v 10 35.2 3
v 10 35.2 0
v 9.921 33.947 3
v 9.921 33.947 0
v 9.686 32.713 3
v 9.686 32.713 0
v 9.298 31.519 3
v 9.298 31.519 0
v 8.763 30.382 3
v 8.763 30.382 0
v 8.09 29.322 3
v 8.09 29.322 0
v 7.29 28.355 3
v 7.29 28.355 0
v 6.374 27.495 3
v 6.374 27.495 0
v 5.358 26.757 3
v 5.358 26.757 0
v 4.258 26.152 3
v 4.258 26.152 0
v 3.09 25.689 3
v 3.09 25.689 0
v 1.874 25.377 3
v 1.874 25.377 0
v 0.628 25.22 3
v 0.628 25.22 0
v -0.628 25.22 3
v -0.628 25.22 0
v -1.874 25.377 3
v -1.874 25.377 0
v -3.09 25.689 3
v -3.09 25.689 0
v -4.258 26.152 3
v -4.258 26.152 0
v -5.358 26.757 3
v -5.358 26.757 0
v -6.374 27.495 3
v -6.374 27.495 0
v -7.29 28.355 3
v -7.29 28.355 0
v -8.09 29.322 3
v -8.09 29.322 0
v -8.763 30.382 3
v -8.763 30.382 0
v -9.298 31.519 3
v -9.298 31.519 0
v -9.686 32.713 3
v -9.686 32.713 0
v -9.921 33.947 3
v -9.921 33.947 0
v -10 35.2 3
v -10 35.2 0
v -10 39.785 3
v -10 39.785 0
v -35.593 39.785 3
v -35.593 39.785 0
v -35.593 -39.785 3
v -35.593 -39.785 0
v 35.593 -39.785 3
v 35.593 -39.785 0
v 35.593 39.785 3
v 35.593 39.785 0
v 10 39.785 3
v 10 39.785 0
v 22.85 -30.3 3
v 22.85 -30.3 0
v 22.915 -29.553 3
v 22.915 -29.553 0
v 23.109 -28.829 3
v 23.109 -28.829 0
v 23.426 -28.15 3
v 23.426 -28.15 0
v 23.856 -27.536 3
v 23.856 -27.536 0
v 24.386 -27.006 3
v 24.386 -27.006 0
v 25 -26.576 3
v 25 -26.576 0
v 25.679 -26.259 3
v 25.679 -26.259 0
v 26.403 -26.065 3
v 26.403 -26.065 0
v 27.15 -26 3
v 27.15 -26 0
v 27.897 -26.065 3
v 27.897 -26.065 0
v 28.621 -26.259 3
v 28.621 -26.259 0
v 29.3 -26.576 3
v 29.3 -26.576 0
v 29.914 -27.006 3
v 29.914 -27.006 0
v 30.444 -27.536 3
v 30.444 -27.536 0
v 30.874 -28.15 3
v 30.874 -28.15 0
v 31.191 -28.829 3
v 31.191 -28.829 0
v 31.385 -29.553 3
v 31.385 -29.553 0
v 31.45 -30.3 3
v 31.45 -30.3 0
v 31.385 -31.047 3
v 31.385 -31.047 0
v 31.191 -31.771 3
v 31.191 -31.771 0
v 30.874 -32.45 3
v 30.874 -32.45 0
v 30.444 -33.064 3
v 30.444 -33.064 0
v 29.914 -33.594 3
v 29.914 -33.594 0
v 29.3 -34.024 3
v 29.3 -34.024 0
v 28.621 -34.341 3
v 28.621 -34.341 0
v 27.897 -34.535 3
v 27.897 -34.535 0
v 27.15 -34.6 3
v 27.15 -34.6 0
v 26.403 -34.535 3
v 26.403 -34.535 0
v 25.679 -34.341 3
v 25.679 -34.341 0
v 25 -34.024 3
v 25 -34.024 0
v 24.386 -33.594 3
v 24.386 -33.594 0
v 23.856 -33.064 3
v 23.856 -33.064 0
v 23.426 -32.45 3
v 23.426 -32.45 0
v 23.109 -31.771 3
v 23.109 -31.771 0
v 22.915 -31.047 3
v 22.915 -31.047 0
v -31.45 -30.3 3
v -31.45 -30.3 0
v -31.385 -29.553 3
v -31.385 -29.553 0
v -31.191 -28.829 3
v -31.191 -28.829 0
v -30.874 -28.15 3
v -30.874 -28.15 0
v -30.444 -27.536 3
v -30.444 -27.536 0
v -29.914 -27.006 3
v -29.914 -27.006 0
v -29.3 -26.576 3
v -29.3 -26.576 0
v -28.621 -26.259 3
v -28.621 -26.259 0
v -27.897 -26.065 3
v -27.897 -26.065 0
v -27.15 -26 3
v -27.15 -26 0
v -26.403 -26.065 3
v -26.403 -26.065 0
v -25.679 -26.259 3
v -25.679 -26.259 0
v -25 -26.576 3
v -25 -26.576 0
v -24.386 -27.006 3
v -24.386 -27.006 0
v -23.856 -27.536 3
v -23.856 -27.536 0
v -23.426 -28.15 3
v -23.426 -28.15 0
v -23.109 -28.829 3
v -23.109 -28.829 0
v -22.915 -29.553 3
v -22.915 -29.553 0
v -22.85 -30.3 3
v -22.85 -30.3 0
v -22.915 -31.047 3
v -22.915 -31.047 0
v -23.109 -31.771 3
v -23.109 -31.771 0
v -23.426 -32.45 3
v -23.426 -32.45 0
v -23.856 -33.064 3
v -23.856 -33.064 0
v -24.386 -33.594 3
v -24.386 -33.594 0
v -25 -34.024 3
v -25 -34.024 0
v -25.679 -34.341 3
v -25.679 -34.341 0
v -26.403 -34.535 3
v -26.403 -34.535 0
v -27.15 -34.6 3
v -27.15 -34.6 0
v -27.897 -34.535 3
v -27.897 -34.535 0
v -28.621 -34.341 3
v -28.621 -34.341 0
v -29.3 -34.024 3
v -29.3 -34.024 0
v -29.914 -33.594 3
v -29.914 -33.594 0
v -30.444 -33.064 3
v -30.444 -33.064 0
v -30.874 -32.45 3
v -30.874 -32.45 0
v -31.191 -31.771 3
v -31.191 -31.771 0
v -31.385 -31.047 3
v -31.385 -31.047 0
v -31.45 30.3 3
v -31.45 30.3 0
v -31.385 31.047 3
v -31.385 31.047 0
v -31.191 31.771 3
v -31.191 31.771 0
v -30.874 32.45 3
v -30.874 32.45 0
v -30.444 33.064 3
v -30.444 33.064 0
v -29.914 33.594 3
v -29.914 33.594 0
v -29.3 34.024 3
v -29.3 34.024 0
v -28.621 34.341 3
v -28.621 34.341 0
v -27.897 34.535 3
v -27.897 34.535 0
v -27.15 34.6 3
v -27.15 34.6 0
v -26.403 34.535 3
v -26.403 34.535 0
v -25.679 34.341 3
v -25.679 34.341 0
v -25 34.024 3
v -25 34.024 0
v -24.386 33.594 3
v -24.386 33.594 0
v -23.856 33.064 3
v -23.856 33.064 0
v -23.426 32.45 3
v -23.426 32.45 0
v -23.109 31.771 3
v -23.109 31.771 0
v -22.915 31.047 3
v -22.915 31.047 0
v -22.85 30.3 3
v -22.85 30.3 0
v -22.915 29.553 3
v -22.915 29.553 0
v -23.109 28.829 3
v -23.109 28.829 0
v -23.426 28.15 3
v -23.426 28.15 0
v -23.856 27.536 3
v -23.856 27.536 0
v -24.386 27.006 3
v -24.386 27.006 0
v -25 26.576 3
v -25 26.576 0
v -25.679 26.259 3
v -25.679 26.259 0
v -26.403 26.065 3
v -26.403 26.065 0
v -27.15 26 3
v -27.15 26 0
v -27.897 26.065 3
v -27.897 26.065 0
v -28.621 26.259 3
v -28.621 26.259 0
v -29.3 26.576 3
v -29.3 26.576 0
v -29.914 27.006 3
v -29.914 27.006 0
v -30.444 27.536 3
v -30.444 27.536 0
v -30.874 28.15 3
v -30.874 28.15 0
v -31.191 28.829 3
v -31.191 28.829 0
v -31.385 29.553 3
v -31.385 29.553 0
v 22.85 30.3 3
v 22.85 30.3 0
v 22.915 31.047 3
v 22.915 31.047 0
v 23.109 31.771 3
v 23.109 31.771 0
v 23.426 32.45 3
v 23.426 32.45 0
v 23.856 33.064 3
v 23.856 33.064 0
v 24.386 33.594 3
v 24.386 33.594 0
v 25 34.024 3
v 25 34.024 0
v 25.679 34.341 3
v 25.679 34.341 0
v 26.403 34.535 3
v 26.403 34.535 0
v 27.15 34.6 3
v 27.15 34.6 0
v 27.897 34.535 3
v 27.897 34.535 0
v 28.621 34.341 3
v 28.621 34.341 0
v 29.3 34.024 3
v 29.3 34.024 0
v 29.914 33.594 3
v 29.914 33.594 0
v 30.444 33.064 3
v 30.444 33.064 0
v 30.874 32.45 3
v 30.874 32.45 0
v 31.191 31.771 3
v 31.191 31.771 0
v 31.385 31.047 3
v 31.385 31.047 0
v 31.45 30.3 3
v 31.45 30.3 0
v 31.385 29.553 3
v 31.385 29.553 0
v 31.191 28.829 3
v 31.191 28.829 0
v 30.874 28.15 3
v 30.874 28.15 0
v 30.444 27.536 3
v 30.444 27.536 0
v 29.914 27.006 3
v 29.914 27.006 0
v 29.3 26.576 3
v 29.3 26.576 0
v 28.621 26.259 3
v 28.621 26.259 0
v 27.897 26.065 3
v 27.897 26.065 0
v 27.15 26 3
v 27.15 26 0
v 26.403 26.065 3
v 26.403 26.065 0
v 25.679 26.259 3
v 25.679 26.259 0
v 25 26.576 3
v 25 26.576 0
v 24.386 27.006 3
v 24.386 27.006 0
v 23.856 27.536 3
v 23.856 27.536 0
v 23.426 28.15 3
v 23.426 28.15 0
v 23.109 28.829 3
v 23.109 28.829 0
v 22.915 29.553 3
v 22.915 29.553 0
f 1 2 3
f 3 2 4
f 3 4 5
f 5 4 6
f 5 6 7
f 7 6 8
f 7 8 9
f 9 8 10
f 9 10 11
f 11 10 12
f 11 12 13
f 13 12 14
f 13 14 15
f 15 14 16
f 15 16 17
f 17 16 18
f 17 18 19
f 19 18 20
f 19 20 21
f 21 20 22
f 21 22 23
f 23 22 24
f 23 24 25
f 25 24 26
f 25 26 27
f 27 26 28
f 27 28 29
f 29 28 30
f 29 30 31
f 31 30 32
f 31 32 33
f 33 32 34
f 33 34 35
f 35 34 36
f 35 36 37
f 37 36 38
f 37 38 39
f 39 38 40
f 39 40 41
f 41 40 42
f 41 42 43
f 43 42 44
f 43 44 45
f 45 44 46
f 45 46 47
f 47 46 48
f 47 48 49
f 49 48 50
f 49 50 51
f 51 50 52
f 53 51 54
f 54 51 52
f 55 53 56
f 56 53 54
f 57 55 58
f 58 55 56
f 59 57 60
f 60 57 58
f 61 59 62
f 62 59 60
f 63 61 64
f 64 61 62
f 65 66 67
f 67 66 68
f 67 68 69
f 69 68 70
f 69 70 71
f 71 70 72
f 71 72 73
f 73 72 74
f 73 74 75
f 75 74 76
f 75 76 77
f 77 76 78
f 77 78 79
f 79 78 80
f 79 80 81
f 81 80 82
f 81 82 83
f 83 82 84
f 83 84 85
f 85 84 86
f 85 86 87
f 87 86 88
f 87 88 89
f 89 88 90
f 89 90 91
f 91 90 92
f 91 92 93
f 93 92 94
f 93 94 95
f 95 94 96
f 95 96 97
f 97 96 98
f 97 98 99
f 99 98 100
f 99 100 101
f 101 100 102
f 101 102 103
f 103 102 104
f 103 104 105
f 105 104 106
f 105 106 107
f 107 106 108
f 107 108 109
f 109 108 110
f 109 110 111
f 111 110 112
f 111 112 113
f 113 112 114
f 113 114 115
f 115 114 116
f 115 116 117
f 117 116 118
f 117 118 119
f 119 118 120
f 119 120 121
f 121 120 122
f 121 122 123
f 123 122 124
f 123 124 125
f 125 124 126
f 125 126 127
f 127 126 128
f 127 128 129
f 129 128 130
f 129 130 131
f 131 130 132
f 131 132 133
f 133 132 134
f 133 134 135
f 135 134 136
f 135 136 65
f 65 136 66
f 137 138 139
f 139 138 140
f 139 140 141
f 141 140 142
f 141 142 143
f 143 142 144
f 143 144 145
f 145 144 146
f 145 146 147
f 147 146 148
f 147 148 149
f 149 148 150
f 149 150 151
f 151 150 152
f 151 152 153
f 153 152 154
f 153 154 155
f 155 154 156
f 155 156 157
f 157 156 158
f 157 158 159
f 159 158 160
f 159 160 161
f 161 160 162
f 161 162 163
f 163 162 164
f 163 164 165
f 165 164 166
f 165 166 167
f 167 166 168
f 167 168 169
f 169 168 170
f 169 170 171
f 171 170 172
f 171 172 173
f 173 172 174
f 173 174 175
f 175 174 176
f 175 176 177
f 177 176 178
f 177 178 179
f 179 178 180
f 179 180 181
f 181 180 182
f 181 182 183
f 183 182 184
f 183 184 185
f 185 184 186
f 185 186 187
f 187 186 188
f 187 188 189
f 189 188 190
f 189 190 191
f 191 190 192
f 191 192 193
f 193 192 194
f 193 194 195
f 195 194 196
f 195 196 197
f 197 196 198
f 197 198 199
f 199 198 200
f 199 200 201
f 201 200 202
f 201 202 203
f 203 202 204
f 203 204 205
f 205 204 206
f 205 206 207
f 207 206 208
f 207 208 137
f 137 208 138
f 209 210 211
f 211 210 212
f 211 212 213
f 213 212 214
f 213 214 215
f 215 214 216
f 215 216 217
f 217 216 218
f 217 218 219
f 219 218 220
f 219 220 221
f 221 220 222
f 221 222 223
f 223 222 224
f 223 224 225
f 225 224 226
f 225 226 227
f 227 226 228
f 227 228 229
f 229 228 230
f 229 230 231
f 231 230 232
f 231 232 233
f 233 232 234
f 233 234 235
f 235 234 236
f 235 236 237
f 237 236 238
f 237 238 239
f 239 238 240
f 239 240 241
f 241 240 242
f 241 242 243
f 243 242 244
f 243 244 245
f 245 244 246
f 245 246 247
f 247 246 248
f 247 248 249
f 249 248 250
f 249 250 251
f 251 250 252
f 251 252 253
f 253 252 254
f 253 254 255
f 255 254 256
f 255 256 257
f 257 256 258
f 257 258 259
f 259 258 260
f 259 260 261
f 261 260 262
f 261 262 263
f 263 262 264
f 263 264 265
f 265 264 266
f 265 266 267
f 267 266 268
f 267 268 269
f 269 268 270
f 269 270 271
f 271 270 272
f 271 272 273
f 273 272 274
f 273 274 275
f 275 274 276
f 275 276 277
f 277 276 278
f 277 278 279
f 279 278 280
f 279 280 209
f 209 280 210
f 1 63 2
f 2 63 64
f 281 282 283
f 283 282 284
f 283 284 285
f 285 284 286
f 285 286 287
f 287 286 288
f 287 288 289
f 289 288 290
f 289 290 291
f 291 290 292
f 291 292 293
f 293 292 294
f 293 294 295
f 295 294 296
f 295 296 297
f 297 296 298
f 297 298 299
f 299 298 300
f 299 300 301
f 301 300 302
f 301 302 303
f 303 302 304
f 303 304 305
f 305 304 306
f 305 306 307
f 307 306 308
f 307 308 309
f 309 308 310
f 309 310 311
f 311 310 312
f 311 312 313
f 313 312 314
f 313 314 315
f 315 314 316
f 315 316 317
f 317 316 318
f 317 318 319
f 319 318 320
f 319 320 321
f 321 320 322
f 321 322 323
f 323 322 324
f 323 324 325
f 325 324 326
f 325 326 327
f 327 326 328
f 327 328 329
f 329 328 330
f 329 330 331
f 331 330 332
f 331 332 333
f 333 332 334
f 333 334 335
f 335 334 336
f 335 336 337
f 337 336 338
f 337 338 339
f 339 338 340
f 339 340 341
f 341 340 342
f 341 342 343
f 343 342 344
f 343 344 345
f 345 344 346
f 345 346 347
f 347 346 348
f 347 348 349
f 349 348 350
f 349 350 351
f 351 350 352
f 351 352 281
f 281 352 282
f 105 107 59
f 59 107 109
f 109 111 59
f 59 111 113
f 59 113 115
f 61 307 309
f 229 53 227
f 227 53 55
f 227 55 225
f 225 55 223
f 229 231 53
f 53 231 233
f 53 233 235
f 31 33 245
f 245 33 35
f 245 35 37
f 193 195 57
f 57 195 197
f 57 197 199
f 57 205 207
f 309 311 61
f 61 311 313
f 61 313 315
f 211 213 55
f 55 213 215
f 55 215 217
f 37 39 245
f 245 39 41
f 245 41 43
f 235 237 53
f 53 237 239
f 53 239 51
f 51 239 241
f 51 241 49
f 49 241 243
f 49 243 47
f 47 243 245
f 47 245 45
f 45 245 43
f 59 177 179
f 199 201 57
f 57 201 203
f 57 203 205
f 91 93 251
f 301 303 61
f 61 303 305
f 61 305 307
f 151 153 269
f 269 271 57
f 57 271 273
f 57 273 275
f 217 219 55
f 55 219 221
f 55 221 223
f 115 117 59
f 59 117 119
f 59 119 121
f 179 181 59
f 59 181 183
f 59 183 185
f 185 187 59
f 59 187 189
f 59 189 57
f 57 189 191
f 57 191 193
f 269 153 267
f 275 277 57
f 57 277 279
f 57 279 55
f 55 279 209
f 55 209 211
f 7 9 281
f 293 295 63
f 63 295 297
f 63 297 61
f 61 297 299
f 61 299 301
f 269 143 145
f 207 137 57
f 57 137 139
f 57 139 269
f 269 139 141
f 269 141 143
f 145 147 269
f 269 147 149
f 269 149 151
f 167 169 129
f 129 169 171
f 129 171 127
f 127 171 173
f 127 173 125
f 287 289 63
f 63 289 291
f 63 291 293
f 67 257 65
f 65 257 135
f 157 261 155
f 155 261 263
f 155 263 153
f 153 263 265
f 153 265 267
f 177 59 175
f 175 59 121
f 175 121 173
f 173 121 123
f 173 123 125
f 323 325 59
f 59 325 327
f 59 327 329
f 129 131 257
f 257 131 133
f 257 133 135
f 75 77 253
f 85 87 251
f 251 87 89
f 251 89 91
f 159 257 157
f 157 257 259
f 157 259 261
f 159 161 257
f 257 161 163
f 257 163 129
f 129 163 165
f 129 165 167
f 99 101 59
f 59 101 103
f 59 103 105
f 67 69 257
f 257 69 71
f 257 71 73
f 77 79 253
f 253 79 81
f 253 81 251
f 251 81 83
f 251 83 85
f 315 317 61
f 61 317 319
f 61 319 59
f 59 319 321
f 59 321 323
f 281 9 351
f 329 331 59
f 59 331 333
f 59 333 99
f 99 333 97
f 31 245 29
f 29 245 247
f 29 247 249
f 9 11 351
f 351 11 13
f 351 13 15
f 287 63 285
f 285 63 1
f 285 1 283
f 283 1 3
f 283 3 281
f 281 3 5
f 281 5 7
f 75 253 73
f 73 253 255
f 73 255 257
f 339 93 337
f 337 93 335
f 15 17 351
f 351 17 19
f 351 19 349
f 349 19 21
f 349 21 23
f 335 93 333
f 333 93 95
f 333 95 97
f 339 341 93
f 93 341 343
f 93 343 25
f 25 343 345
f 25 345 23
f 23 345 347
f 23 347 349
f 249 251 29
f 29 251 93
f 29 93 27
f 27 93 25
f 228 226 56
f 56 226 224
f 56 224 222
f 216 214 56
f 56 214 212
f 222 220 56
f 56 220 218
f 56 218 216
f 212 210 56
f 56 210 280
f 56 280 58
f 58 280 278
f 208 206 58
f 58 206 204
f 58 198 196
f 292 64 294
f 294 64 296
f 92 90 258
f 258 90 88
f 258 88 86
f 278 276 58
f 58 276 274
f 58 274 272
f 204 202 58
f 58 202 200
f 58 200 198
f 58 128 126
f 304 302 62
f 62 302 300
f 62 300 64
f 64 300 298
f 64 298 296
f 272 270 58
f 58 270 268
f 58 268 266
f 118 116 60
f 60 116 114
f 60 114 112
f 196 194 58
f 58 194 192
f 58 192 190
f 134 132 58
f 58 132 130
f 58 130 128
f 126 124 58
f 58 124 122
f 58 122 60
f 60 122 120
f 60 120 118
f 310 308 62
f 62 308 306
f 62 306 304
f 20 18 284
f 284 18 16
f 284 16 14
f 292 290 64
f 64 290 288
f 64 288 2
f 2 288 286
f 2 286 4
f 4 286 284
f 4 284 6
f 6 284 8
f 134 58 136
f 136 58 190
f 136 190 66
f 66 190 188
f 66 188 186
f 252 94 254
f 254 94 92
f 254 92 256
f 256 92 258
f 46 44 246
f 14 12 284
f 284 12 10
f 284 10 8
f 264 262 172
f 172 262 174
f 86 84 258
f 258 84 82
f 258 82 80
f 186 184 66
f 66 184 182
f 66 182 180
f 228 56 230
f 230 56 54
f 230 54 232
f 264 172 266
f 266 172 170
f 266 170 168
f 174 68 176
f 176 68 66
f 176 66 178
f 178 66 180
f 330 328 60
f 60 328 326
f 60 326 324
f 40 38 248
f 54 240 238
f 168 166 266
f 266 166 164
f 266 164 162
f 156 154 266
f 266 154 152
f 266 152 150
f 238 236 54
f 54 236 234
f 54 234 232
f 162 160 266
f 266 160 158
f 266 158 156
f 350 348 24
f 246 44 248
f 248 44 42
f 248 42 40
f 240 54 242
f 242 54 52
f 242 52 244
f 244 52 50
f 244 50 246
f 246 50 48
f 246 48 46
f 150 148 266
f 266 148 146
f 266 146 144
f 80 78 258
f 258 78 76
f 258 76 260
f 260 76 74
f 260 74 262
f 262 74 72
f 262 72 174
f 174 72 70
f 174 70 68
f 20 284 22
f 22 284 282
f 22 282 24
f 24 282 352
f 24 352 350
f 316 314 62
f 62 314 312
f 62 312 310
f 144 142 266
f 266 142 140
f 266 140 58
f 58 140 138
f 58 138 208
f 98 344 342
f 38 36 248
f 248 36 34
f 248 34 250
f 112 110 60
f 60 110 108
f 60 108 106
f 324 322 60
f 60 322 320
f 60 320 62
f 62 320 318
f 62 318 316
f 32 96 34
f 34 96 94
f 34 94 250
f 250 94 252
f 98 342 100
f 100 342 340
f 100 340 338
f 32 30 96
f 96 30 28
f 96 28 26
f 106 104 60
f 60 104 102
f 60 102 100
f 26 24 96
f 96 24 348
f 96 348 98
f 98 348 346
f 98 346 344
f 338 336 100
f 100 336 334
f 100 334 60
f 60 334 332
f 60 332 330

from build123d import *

# Parameters (mm, degrees)
SKETCH1_R           = 4.3
BOSS_EXTRUDE1_DEPTH = 3


with BuildPart() as part:
    # Sketch1 → Boss-Extrude1 (new body)
    with BuildSketch(Plane.XY):
        with BuildLine():
            Line((-35.59279418, 39.784944199), (-35.59279418, -39.784944199))
            Line((-35.59279418, -39.784944199), (35.59279418, -39.784944199))
            Line((35.59279418, -39.784944199), (35.59279418, 39.784944199))
            Line((35.59279418, 39.784944199), (10, 39.784944199))
            Line((10, 39.784944199), (10, 35.2))
            ThreePointArc((10, 35.2), (0, 25.2), (-10, 35.2))
            Line((-10, 35.2), (-10, 39.784944199))
            Line((-10, 39.784944199), (-35.59279418, 39.784944199))
        make_face()
        with Locations((-27.15, -30.3)):
            Circle(SKETCH1_R, mode=Mode.SUBTRACT)
        with Locations((27.15, -30.3)):
            Circle(SKETCH1_R, mode=Mode.SUBTRACT)
        with Locations((-27.15, 30.3)):
            Circle(SKETCH1_R, mode=Mode.SUBTRACT)
        with Locations((27.15, 30.3)):
            Circle(SKETCH1_R, mode=Mode.SUBTRACT)
    extrude(amount=BOSS_EXTRUDE1_DEPTH)


solid = part.part
